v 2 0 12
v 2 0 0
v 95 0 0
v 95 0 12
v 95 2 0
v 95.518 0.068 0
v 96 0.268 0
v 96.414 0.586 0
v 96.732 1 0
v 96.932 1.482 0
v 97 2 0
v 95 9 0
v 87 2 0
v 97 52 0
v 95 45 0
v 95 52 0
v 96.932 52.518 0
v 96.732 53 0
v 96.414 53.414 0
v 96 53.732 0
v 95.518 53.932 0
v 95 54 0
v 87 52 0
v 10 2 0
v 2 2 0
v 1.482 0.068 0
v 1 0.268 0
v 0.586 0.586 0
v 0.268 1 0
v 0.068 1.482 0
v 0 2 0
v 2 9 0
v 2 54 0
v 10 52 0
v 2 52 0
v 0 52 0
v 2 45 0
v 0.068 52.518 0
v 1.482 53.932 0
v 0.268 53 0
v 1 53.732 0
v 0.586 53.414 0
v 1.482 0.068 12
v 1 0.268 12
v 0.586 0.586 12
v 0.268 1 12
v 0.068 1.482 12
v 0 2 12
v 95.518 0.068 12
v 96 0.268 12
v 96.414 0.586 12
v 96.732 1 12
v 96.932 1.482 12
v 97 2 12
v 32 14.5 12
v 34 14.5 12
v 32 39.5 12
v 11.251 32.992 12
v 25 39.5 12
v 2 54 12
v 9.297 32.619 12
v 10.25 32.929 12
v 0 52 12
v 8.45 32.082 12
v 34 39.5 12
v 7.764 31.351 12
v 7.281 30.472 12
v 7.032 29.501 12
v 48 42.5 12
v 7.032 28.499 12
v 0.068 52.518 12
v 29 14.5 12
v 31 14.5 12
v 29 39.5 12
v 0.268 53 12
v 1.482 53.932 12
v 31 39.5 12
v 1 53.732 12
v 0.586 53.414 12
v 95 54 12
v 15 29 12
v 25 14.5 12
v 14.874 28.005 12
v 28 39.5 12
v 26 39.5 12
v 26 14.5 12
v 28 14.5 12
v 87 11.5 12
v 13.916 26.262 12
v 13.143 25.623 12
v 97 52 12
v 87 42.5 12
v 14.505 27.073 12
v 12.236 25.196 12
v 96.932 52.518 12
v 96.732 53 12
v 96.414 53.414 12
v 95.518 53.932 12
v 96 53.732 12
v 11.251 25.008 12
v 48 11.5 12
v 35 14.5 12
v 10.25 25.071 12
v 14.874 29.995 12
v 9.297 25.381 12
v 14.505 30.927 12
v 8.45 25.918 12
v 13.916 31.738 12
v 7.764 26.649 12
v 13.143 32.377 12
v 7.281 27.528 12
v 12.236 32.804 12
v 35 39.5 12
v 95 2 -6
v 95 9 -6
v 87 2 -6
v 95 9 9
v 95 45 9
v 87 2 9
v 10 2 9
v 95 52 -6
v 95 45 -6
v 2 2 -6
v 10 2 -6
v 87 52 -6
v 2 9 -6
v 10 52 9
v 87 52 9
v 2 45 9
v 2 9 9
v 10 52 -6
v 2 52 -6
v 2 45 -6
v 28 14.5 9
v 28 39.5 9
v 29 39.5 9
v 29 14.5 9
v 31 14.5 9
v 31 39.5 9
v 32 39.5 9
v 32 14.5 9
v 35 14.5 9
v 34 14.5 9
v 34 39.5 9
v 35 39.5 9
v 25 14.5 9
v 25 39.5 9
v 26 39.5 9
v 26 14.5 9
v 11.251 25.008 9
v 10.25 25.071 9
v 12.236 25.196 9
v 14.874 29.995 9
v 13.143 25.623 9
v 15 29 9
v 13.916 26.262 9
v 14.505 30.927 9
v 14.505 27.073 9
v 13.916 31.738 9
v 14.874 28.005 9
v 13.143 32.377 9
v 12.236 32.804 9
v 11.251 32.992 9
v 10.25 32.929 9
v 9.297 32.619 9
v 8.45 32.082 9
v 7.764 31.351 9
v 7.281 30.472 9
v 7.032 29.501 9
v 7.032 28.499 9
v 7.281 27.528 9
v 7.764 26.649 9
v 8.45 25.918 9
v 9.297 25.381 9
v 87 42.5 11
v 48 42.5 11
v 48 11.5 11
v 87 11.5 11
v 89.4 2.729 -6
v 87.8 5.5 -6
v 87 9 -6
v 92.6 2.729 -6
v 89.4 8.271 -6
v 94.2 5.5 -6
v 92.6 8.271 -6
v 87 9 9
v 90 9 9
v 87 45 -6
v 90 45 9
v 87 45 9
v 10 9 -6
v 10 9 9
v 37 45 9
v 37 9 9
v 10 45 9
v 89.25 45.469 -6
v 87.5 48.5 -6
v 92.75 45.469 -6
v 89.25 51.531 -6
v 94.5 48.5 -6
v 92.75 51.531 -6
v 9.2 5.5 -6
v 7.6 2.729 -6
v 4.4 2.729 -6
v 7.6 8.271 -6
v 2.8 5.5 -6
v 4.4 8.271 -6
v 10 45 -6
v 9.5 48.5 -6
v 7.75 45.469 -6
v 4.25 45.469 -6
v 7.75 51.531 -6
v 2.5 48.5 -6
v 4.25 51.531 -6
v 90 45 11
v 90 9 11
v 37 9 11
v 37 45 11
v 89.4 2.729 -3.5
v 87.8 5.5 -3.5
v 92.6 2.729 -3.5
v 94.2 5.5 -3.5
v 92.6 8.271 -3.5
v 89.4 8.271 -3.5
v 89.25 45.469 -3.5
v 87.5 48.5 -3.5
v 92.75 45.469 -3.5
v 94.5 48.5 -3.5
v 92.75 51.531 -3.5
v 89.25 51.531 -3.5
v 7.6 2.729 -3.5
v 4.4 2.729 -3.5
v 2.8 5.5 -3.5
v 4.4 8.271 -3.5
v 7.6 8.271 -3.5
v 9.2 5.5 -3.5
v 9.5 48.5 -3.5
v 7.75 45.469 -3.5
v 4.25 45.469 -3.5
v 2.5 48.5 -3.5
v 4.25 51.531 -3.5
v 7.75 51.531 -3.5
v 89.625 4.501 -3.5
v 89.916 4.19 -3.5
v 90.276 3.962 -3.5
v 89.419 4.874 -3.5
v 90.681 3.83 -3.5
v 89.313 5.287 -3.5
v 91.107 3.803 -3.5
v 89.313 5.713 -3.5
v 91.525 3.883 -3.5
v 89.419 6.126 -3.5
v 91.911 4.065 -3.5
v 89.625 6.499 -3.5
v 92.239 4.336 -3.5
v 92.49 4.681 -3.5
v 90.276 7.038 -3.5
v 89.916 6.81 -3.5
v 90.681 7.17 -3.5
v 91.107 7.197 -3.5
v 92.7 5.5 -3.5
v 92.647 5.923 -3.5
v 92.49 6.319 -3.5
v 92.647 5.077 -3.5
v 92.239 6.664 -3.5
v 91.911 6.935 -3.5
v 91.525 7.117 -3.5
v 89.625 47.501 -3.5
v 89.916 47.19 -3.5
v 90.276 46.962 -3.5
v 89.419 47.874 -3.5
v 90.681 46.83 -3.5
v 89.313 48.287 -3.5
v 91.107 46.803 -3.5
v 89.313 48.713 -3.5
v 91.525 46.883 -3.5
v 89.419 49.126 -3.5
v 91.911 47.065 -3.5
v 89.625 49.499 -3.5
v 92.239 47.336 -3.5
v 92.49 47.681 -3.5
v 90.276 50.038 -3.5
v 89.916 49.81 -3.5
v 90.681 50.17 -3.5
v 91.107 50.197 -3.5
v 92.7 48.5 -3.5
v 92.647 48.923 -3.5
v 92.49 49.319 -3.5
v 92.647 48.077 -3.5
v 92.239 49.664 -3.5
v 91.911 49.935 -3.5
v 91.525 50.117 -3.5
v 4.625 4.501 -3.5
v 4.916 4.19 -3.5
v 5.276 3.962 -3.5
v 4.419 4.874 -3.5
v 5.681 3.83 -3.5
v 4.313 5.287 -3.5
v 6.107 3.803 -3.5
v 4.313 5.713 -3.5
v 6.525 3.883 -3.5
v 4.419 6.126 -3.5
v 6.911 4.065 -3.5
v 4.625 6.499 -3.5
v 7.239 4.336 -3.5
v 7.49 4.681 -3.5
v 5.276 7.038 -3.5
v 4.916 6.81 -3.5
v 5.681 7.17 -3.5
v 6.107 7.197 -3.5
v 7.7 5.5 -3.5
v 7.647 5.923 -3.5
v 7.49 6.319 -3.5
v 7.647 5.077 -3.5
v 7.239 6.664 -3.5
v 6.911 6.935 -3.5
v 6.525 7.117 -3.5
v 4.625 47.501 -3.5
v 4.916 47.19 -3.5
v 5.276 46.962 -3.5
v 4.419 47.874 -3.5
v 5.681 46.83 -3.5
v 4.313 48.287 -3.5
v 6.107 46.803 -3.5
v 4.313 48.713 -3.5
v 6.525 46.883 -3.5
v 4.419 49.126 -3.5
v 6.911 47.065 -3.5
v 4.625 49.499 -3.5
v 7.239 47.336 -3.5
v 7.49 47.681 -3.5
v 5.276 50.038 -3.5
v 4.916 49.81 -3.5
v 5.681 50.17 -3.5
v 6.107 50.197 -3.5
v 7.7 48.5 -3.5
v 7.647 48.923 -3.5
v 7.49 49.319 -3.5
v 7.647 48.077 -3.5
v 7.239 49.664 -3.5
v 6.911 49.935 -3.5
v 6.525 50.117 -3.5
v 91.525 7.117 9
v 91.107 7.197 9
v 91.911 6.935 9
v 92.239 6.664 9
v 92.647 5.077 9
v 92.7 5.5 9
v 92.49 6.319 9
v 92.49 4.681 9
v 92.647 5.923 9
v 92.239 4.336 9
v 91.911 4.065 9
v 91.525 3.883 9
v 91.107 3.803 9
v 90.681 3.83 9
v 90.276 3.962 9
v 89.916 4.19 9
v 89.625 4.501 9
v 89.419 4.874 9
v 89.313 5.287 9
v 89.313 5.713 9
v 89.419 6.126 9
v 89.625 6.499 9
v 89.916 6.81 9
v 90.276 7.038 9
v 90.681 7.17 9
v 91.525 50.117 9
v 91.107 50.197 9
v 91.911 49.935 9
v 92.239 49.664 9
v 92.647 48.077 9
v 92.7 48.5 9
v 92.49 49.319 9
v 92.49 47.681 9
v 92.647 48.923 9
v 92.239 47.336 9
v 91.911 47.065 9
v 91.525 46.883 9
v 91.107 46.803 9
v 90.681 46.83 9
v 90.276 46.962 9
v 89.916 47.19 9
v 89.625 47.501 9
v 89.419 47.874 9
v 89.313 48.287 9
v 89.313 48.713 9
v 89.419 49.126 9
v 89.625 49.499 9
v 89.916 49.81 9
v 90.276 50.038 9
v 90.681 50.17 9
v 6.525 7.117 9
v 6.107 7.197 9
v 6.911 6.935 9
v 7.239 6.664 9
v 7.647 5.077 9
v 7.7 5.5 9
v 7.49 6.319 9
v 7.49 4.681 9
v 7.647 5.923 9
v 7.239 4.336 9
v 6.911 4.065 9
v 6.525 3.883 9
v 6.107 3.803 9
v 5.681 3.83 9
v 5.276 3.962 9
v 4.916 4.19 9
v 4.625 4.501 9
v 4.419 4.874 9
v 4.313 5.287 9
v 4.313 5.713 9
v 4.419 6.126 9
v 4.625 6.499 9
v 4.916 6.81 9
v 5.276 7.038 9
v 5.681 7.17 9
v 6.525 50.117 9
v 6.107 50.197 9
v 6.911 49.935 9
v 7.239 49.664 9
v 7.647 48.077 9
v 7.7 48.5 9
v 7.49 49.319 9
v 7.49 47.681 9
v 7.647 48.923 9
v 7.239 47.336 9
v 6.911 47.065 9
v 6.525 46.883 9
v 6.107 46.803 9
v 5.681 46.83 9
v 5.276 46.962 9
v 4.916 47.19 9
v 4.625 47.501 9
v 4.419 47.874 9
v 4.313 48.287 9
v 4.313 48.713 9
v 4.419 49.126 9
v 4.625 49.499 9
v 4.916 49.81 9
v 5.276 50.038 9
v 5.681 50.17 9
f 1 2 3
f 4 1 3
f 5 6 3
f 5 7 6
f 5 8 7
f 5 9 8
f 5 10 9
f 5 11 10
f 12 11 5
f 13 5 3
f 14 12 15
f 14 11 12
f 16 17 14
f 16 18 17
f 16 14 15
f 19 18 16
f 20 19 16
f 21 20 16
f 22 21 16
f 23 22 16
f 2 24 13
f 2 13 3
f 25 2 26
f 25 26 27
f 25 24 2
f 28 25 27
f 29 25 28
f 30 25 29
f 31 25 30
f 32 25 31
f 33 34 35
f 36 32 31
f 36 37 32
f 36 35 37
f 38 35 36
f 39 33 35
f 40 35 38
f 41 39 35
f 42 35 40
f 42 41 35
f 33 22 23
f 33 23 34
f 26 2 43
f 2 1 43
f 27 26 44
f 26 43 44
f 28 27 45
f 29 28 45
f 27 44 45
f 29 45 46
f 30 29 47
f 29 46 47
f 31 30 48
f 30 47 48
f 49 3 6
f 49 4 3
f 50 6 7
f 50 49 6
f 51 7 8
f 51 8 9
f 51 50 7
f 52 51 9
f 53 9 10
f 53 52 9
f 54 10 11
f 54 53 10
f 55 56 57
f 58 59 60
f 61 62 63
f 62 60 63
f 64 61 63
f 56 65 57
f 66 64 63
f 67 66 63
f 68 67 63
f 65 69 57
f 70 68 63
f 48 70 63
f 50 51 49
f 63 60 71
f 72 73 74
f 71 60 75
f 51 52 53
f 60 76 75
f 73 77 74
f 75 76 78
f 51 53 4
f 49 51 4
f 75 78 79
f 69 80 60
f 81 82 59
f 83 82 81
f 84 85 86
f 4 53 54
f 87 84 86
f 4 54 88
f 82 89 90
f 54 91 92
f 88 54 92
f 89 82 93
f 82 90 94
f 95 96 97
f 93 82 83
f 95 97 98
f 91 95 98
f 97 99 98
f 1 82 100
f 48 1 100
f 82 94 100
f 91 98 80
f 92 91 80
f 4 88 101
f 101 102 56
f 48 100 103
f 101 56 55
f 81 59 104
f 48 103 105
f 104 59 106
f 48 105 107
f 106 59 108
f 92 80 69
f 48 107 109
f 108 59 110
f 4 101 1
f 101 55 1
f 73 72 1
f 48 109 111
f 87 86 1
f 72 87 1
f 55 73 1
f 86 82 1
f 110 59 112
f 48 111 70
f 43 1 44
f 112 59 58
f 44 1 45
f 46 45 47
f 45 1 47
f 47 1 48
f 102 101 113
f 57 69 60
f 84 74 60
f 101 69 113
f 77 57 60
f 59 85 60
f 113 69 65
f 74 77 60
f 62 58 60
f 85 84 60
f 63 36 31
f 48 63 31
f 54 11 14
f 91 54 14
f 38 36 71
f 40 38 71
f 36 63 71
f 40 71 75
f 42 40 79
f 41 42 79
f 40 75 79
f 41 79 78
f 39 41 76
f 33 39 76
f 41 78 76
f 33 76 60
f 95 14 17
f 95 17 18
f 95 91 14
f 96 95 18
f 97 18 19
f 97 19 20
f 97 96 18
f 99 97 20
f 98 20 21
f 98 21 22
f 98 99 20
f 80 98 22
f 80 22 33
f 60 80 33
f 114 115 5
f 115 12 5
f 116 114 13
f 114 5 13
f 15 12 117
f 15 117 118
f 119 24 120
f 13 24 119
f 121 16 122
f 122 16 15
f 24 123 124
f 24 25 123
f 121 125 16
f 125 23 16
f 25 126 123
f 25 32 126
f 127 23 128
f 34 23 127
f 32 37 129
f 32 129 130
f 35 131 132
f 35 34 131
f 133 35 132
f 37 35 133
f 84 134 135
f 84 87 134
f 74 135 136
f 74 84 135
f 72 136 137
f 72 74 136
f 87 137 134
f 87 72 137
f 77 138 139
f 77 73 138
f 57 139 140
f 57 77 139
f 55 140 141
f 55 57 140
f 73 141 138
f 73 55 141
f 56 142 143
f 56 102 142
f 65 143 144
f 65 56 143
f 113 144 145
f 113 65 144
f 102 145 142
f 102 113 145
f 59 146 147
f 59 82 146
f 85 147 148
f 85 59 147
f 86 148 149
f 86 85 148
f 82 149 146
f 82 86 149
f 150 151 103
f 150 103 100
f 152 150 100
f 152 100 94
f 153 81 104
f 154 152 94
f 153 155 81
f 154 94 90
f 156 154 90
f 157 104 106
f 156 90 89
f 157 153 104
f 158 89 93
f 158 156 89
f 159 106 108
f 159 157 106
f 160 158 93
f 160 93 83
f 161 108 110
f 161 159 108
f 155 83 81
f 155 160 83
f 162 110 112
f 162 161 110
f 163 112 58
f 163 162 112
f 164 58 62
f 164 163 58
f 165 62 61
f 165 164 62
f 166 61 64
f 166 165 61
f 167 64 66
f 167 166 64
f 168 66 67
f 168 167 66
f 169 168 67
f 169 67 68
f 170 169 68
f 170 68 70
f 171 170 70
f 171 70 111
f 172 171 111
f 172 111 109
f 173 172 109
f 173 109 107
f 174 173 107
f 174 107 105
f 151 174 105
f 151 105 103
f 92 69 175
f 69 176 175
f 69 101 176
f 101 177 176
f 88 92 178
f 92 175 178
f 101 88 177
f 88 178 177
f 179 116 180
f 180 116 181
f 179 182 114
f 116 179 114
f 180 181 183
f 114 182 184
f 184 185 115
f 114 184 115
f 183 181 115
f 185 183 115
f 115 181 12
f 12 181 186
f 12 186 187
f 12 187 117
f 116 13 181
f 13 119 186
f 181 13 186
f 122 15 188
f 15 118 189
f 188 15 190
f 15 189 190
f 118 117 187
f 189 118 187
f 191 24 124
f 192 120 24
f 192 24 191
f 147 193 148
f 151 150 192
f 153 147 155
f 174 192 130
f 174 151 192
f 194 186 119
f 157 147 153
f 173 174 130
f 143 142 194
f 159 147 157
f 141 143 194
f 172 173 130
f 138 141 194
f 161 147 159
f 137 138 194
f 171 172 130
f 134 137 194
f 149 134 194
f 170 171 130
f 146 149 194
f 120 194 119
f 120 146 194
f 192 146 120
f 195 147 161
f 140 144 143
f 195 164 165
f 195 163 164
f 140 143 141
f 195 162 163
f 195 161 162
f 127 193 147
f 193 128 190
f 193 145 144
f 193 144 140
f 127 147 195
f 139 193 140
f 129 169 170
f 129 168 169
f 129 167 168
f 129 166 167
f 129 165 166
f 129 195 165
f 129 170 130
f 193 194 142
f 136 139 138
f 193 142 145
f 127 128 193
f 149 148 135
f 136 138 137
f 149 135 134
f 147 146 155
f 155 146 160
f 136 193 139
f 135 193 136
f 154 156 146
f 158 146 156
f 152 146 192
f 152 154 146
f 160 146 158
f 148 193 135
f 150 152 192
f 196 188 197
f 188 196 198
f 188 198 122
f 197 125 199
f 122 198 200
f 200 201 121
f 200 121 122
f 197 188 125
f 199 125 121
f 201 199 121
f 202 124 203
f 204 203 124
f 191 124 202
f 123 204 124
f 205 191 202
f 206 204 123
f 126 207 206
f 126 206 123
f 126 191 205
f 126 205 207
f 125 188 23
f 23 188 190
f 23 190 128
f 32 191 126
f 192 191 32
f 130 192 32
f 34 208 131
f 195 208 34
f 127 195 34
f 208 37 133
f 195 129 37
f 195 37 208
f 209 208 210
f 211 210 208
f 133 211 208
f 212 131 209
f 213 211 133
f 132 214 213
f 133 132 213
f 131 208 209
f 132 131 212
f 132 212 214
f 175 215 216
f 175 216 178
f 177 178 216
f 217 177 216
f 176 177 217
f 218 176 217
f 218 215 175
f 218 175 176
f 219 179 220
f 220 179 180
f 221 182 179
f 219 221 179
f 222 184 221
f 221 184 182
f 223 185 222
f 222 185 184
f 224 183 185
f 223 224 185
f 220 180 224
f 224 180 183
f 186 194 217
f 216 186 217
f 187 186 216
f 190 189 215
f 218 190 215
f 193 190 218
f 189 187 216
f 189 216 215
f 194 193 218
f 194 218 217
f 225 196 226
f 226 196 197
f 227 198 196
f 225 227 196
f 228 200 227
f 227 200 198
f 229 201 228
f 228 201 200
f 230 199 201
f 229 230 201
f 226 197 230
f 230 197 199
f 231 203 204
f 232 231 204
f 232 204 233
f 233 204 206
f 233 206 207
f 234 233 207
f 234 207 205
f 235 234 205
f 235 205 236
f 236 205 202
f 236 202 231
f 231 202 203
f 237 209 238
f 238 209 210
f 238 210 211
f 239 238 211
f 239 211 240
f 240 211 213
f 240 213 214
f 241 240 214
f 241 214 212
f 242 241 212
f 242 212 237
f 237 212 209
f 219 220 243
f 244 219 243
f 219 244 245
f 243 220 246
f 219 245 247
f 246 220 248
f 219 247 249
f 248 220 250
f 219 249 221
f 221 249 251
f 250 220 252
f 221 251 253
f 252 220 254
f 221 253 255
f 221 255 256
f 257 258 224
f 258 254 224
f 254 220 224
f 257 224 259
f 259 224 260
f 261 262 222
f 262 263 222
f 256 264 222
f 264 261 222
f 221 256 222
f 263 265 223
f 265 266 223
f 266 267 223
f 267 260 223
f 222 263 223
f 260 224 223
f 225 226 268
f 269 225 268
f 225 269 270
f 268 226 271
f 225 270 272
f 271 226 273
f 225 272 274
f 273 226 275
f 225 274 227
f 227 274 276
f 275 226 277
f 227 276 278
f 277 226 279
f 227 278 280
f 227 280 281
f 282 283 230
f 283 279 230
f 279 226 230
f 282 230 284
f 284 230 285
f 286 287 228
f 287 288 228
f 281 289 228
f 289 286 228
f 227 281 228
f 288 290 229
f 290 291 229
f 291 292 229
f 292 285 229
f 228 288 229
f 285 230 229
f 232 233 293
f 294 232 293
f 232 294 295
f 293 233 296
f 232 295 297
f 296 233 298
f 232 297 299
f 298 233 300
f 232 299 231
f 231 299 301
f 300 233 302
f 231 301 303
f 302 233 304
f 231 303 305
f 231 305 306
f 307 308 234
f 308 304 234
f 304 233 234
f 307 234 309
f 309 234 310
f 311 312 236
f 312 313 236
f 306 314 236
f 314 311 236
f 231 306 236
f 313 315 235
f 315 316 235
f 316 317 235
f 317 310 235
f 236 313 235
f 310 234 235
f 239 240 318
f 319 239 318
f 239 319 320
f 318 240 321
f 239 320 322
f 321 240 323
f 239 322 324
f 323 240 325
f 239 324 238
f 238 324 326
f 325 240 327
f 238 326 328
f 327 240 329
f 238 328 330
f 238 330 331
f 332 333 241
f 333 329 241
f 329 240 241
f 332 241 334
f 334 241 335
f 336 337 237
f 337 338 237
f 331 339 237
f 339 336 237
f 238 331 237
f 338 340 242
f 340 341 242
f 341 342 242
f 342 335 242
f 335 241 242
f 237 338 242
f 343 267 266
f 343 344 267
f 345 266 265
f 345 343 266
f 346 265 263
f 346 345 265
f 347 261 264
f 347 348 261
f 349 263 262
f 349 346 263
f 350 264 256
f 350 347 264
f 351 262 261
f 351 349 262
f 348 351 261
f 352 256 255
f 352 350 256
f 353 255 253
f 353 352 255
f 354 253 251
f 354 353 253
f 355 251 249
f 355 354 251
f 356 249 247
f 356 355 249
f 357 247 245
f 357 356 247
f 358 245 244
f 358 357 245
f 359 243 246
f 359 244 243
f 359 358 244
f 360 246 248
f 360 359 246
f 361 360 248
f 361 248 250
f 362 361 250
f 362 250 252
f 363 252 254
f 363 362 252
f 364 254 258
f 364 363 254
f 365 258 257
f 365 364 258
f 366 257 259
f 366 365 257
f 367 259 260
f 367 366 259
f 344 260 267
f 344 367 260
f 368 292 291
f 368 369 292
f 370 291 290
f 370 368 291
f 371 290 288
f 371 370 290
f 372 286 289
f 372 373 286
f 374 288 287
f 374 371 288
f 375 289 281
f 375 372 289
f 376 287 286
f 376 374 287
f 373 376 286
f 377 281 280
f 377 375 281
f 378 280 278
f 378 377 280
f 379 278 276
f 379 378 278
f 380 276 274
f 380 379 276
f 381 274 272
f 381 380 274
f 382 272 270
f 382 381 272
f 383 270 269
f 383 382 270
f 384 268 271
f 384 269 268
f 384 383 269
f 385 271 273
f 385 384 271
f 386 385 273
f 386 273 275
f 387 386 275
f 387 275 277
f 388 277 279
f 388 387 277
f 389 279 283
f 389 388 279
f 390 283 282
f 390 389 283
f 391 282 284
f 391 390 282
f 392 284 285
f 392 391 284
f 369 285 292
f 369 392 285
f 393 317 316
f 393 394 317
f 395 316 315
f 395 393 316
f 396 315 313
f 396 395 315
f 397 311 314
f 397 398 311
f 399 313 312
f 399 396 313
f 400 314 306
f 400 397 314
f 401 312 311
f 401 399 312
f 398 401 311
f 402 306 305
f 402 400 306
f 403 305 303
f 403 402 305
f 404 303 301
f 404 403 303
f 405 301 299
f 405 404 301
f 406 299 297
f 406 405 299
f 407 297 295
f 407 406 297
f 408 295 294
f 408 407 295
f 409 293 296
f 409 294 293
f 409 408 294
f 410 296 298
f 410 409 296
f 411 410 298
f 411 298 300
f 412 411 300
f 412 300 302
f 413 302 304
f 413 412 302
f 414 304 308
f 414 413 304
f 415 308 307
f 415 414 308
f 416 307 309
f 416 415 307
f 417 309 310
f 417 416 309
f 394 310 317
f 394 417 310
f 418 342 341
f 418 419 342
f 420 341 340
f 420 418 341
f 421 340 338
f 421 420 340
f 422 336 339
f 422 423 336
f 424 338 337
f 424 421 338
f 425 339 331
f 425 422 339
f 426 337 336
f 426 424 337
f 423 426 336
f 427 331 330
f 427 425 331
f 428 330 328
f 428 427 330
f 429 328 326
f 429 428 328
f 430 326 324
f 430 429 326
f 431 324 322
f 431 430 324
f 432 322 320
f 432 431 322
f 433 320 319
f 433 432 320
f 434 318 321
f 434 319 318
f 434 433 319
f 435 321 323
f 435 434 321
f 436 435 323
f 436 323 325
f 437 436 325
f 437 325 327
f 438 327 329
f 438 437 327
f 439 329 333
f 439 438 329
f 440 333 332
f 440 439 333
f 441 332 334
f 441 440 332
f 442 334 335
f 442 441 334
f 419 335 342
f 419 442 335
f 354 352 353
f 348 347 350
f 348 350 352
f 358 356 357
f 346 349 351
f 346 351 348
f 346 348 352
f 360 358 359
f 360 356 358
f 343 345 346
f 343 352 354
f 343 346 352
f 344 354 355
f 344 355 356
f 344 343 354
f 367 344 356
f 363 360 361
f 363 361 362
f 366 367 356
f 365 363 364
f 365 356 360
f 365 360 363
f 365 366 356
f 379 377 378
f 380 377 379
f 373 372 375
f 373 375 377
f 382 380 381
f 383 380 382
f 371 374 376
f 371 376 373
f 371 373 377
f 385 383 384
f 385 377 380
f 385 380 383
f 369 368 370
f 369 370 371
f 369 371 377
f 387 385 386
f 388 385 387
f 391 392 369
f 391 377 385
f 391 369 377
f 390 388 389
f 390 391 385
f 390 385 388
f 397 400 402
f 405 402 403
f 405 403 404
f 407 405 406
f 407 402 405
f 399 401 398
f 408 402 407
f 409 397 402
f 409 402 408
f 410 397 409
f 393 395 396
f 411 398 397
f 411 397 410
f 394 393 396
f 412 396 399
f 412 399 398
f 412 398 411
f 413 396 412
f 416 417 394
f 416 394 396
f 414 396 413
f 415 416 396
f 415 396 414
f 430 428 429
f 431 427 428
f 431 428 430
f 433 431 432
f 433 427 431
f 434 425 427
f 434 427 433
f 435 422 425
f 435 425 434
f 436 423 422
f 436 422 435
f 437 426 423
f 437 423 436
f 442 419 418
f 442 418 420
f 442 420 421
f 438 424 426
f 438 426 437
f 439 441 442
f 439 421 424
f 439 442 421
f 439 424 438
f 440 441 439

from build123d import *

# Parameters (mm, degrees)
SKETCH_W        = 97
SKETCH_H        = 54
SKETCH_R        = 4
SKETCH_W_2      = 39
SKETCH_H_2      = 31
PAD_DEPTH       = 12
SKETCH001_W     = 93
SKETCH001_H     = 50
POCKET_DEPTH    = 9
SKETCH002_W     = 53
SKETCH002_H     = 36
POCKET001_DEPTH = 2
SKETCH003_W     = 1
SKETCH003_H     = 25
POCKET002_DEPTH = 12.001
FILLET_R        = 2
SKETCH004_W     = 8
SKETCH004_H     = 7
SKETCH004_R     = 1.7
PAD001_DEPTH    = 15
POCKET003_DEPTH = 2.5
POCKET004_DEPTH = 2.5
POCKET005_DEPTH = 2.5
POCKET006_DEPTH = 2.5


with BuildPart() as part:
    # Sketch → Pad (new body)
    with BuildSketch(Plane.XY):
        with Locations((48.5, 27)):
            Rectangle(SKETCH_W, SKETCH_H)
        with Locations((11, 29)):
            Circle(SKETCH_R, mode=Mode.SUBTRACT)
        with Locations((67.5, 27)):
            Rectangle(SKETCH_W_2, SKETCH_H_2, mode=Mode.SUBTRACT)
    extrude(amount=PAD_DEPTH)

    # Sketch001 → Pocket (cut)
    with BuildSketch(Plane(origin=(0, 0, 0), x_dir=(1, 0, 0), z_dir=(0, 0, -1))):
        with Locations((48.5, -27)):
            Rectangle(SKETCH001_W, SKETCH001_H)
    extrude(amount=-POCKET_DEPTH, mode=Mode.SUBTRACT)

    # Sketch002 → Pocket001 (cut)
    with BuildSketch(Plane(origin=(0, 0, 9), x_dir=(1, 0, 0), z_dir=(0, 0, -1))):
        with Locations((63.5, -27)):
            Rectangle(SKETCH002_W, SKETCH002_H)
    extrude(amount=-POCKET001_DEPTH, mode=Mode.SUBTRACT)

    # Sketch003 → Pocket002 (cut, through all)
    with BuildSketch(Plane.XY.offset(12)):
        with Locations((28.5, 27)):
            Rectangle(SKETCH003_W, SKETCH003_H)
        with Locations((31.5, 27)):
            Rectangle(SKETCH003_W, SKETCH003_H)
        with Locations((25.5, 27)):
            Rectangle(SKETCH003_W, SKETCH003_H)
        with Locations((34.5, 27)):
            Rectangle(SKETCH003_W, SKETCH003_H)
    extrude(amount=-POCKET002_DEPTH, mode=Mode.SUBTRACT)

    # Fillet
    fillet_edges = [part.edges().sort_by_distance(p)[0] for p in [
        (97, 0, 6),
        (0, 0, 6),
        (97, 54, 6),
        (0, 54, 6),
    ]]
    fillet(fillet_edges, radius=FILLET_R)

    # Sketch004 → Pad001 (new body)
    with BuildSketch(Plane(origin=(0, 0, 9), x_dir=(1, 0, 0), z_dir=(0, 0, -1))):
        with Locations((6, -5.5)):
            Rectangle(SKETCH004_W, SKETCH004_H)
        with Locations((6, -5.5)):
            Circle(SKETCH004_R, mode=Mode.SUBTRACT)
        with Locations((91, -5.5)):
            Rectangle(SKETCH004_W, SKETCH004_H)
        with Locations((91, -5.5)):
            Circle(SKETCH004_R, mode=Mode.SUBTRACT)
        with Locations((6, -48.5)):
            Rectangle(SKETCH004_W, SKETCH004_H)
        with Locations((6, -48.5)):
            Circle(SKETCH004_R, mode=Mode.SUBTRACT)
        with Locations((91, -48.5)):
            Rectangle(SKETCH004_W, SKETCH004_H)
        with Locations((91, -48.5)):
            Circle(SKETCH004_R, mode=Mode.SUBTRACT)
    extrude(amount=PAD001_DEPTH)

    # Sketch006 → Pocket003 (cut)
    with BuildSketch(Plane(origin=(0, 0, -6), x_dir=(1, 0, 0), z_dir=(0, 0, -1))):
        Polygon((7.6, -8.271281), (9.2, -5.5), (7.6, -2.728719), (4.4, -2.728719), (2.8, -5.5), (4.4, -8.271281), align=None)
    extrude(amount=-POCKET003_DEPTH, mode=Mode.SUBTRACT)

    # Sketch007 → Pocket004 (cut)
    with BuildSketch(Plane(origin=(0, 0, -6), x_dir=(1, 0, 0), z_dir=(0, 0, -1))):
        Polygon((92.6, -8.271281), (94.2, -5.5), (92.6, -2.728719), (89.4, -2.728719), (87.8, -5.5), (89.4, -8.271281), align=None)
    extrude(amount=-POCKET004_DEPTH, mode=Mode.SUBTRACT)

    # Sketch008 → Pocket005 (cut)
    with BuildSketch(Plane(origin=(0, 0, -6), x_dir=(1, 0, 0), z_dir=(0, 0, -1))):
        Polygon((7.75, -51.531089), (9.5, -48.5), (7.75, -45.468911), (4.25, -45.468911), (2.5, -48.5), (4.25, -51.531089), align=None)
    extrude(amount=-POCKET005_DEPTH, mode=Mode.SUBTRACT)

    # Sketch010 → Pocket006 (cut)
    with BuildSketch(Plane(origin=(0, 0, -6), x_dir=(1, 0, 0), z_dir=(0, 0, -1))):
        Polygon((92.75, -51.531089), (94.5, -48.5), (92.75, -45.468911), (89.25, -45.468911), (87.5, -48.5), (89.25, -51.531089), align=None)
    extrude(amount=-POCKET006_DEPTH, mode=Mode.SUBTRACT)


solid = part.part
